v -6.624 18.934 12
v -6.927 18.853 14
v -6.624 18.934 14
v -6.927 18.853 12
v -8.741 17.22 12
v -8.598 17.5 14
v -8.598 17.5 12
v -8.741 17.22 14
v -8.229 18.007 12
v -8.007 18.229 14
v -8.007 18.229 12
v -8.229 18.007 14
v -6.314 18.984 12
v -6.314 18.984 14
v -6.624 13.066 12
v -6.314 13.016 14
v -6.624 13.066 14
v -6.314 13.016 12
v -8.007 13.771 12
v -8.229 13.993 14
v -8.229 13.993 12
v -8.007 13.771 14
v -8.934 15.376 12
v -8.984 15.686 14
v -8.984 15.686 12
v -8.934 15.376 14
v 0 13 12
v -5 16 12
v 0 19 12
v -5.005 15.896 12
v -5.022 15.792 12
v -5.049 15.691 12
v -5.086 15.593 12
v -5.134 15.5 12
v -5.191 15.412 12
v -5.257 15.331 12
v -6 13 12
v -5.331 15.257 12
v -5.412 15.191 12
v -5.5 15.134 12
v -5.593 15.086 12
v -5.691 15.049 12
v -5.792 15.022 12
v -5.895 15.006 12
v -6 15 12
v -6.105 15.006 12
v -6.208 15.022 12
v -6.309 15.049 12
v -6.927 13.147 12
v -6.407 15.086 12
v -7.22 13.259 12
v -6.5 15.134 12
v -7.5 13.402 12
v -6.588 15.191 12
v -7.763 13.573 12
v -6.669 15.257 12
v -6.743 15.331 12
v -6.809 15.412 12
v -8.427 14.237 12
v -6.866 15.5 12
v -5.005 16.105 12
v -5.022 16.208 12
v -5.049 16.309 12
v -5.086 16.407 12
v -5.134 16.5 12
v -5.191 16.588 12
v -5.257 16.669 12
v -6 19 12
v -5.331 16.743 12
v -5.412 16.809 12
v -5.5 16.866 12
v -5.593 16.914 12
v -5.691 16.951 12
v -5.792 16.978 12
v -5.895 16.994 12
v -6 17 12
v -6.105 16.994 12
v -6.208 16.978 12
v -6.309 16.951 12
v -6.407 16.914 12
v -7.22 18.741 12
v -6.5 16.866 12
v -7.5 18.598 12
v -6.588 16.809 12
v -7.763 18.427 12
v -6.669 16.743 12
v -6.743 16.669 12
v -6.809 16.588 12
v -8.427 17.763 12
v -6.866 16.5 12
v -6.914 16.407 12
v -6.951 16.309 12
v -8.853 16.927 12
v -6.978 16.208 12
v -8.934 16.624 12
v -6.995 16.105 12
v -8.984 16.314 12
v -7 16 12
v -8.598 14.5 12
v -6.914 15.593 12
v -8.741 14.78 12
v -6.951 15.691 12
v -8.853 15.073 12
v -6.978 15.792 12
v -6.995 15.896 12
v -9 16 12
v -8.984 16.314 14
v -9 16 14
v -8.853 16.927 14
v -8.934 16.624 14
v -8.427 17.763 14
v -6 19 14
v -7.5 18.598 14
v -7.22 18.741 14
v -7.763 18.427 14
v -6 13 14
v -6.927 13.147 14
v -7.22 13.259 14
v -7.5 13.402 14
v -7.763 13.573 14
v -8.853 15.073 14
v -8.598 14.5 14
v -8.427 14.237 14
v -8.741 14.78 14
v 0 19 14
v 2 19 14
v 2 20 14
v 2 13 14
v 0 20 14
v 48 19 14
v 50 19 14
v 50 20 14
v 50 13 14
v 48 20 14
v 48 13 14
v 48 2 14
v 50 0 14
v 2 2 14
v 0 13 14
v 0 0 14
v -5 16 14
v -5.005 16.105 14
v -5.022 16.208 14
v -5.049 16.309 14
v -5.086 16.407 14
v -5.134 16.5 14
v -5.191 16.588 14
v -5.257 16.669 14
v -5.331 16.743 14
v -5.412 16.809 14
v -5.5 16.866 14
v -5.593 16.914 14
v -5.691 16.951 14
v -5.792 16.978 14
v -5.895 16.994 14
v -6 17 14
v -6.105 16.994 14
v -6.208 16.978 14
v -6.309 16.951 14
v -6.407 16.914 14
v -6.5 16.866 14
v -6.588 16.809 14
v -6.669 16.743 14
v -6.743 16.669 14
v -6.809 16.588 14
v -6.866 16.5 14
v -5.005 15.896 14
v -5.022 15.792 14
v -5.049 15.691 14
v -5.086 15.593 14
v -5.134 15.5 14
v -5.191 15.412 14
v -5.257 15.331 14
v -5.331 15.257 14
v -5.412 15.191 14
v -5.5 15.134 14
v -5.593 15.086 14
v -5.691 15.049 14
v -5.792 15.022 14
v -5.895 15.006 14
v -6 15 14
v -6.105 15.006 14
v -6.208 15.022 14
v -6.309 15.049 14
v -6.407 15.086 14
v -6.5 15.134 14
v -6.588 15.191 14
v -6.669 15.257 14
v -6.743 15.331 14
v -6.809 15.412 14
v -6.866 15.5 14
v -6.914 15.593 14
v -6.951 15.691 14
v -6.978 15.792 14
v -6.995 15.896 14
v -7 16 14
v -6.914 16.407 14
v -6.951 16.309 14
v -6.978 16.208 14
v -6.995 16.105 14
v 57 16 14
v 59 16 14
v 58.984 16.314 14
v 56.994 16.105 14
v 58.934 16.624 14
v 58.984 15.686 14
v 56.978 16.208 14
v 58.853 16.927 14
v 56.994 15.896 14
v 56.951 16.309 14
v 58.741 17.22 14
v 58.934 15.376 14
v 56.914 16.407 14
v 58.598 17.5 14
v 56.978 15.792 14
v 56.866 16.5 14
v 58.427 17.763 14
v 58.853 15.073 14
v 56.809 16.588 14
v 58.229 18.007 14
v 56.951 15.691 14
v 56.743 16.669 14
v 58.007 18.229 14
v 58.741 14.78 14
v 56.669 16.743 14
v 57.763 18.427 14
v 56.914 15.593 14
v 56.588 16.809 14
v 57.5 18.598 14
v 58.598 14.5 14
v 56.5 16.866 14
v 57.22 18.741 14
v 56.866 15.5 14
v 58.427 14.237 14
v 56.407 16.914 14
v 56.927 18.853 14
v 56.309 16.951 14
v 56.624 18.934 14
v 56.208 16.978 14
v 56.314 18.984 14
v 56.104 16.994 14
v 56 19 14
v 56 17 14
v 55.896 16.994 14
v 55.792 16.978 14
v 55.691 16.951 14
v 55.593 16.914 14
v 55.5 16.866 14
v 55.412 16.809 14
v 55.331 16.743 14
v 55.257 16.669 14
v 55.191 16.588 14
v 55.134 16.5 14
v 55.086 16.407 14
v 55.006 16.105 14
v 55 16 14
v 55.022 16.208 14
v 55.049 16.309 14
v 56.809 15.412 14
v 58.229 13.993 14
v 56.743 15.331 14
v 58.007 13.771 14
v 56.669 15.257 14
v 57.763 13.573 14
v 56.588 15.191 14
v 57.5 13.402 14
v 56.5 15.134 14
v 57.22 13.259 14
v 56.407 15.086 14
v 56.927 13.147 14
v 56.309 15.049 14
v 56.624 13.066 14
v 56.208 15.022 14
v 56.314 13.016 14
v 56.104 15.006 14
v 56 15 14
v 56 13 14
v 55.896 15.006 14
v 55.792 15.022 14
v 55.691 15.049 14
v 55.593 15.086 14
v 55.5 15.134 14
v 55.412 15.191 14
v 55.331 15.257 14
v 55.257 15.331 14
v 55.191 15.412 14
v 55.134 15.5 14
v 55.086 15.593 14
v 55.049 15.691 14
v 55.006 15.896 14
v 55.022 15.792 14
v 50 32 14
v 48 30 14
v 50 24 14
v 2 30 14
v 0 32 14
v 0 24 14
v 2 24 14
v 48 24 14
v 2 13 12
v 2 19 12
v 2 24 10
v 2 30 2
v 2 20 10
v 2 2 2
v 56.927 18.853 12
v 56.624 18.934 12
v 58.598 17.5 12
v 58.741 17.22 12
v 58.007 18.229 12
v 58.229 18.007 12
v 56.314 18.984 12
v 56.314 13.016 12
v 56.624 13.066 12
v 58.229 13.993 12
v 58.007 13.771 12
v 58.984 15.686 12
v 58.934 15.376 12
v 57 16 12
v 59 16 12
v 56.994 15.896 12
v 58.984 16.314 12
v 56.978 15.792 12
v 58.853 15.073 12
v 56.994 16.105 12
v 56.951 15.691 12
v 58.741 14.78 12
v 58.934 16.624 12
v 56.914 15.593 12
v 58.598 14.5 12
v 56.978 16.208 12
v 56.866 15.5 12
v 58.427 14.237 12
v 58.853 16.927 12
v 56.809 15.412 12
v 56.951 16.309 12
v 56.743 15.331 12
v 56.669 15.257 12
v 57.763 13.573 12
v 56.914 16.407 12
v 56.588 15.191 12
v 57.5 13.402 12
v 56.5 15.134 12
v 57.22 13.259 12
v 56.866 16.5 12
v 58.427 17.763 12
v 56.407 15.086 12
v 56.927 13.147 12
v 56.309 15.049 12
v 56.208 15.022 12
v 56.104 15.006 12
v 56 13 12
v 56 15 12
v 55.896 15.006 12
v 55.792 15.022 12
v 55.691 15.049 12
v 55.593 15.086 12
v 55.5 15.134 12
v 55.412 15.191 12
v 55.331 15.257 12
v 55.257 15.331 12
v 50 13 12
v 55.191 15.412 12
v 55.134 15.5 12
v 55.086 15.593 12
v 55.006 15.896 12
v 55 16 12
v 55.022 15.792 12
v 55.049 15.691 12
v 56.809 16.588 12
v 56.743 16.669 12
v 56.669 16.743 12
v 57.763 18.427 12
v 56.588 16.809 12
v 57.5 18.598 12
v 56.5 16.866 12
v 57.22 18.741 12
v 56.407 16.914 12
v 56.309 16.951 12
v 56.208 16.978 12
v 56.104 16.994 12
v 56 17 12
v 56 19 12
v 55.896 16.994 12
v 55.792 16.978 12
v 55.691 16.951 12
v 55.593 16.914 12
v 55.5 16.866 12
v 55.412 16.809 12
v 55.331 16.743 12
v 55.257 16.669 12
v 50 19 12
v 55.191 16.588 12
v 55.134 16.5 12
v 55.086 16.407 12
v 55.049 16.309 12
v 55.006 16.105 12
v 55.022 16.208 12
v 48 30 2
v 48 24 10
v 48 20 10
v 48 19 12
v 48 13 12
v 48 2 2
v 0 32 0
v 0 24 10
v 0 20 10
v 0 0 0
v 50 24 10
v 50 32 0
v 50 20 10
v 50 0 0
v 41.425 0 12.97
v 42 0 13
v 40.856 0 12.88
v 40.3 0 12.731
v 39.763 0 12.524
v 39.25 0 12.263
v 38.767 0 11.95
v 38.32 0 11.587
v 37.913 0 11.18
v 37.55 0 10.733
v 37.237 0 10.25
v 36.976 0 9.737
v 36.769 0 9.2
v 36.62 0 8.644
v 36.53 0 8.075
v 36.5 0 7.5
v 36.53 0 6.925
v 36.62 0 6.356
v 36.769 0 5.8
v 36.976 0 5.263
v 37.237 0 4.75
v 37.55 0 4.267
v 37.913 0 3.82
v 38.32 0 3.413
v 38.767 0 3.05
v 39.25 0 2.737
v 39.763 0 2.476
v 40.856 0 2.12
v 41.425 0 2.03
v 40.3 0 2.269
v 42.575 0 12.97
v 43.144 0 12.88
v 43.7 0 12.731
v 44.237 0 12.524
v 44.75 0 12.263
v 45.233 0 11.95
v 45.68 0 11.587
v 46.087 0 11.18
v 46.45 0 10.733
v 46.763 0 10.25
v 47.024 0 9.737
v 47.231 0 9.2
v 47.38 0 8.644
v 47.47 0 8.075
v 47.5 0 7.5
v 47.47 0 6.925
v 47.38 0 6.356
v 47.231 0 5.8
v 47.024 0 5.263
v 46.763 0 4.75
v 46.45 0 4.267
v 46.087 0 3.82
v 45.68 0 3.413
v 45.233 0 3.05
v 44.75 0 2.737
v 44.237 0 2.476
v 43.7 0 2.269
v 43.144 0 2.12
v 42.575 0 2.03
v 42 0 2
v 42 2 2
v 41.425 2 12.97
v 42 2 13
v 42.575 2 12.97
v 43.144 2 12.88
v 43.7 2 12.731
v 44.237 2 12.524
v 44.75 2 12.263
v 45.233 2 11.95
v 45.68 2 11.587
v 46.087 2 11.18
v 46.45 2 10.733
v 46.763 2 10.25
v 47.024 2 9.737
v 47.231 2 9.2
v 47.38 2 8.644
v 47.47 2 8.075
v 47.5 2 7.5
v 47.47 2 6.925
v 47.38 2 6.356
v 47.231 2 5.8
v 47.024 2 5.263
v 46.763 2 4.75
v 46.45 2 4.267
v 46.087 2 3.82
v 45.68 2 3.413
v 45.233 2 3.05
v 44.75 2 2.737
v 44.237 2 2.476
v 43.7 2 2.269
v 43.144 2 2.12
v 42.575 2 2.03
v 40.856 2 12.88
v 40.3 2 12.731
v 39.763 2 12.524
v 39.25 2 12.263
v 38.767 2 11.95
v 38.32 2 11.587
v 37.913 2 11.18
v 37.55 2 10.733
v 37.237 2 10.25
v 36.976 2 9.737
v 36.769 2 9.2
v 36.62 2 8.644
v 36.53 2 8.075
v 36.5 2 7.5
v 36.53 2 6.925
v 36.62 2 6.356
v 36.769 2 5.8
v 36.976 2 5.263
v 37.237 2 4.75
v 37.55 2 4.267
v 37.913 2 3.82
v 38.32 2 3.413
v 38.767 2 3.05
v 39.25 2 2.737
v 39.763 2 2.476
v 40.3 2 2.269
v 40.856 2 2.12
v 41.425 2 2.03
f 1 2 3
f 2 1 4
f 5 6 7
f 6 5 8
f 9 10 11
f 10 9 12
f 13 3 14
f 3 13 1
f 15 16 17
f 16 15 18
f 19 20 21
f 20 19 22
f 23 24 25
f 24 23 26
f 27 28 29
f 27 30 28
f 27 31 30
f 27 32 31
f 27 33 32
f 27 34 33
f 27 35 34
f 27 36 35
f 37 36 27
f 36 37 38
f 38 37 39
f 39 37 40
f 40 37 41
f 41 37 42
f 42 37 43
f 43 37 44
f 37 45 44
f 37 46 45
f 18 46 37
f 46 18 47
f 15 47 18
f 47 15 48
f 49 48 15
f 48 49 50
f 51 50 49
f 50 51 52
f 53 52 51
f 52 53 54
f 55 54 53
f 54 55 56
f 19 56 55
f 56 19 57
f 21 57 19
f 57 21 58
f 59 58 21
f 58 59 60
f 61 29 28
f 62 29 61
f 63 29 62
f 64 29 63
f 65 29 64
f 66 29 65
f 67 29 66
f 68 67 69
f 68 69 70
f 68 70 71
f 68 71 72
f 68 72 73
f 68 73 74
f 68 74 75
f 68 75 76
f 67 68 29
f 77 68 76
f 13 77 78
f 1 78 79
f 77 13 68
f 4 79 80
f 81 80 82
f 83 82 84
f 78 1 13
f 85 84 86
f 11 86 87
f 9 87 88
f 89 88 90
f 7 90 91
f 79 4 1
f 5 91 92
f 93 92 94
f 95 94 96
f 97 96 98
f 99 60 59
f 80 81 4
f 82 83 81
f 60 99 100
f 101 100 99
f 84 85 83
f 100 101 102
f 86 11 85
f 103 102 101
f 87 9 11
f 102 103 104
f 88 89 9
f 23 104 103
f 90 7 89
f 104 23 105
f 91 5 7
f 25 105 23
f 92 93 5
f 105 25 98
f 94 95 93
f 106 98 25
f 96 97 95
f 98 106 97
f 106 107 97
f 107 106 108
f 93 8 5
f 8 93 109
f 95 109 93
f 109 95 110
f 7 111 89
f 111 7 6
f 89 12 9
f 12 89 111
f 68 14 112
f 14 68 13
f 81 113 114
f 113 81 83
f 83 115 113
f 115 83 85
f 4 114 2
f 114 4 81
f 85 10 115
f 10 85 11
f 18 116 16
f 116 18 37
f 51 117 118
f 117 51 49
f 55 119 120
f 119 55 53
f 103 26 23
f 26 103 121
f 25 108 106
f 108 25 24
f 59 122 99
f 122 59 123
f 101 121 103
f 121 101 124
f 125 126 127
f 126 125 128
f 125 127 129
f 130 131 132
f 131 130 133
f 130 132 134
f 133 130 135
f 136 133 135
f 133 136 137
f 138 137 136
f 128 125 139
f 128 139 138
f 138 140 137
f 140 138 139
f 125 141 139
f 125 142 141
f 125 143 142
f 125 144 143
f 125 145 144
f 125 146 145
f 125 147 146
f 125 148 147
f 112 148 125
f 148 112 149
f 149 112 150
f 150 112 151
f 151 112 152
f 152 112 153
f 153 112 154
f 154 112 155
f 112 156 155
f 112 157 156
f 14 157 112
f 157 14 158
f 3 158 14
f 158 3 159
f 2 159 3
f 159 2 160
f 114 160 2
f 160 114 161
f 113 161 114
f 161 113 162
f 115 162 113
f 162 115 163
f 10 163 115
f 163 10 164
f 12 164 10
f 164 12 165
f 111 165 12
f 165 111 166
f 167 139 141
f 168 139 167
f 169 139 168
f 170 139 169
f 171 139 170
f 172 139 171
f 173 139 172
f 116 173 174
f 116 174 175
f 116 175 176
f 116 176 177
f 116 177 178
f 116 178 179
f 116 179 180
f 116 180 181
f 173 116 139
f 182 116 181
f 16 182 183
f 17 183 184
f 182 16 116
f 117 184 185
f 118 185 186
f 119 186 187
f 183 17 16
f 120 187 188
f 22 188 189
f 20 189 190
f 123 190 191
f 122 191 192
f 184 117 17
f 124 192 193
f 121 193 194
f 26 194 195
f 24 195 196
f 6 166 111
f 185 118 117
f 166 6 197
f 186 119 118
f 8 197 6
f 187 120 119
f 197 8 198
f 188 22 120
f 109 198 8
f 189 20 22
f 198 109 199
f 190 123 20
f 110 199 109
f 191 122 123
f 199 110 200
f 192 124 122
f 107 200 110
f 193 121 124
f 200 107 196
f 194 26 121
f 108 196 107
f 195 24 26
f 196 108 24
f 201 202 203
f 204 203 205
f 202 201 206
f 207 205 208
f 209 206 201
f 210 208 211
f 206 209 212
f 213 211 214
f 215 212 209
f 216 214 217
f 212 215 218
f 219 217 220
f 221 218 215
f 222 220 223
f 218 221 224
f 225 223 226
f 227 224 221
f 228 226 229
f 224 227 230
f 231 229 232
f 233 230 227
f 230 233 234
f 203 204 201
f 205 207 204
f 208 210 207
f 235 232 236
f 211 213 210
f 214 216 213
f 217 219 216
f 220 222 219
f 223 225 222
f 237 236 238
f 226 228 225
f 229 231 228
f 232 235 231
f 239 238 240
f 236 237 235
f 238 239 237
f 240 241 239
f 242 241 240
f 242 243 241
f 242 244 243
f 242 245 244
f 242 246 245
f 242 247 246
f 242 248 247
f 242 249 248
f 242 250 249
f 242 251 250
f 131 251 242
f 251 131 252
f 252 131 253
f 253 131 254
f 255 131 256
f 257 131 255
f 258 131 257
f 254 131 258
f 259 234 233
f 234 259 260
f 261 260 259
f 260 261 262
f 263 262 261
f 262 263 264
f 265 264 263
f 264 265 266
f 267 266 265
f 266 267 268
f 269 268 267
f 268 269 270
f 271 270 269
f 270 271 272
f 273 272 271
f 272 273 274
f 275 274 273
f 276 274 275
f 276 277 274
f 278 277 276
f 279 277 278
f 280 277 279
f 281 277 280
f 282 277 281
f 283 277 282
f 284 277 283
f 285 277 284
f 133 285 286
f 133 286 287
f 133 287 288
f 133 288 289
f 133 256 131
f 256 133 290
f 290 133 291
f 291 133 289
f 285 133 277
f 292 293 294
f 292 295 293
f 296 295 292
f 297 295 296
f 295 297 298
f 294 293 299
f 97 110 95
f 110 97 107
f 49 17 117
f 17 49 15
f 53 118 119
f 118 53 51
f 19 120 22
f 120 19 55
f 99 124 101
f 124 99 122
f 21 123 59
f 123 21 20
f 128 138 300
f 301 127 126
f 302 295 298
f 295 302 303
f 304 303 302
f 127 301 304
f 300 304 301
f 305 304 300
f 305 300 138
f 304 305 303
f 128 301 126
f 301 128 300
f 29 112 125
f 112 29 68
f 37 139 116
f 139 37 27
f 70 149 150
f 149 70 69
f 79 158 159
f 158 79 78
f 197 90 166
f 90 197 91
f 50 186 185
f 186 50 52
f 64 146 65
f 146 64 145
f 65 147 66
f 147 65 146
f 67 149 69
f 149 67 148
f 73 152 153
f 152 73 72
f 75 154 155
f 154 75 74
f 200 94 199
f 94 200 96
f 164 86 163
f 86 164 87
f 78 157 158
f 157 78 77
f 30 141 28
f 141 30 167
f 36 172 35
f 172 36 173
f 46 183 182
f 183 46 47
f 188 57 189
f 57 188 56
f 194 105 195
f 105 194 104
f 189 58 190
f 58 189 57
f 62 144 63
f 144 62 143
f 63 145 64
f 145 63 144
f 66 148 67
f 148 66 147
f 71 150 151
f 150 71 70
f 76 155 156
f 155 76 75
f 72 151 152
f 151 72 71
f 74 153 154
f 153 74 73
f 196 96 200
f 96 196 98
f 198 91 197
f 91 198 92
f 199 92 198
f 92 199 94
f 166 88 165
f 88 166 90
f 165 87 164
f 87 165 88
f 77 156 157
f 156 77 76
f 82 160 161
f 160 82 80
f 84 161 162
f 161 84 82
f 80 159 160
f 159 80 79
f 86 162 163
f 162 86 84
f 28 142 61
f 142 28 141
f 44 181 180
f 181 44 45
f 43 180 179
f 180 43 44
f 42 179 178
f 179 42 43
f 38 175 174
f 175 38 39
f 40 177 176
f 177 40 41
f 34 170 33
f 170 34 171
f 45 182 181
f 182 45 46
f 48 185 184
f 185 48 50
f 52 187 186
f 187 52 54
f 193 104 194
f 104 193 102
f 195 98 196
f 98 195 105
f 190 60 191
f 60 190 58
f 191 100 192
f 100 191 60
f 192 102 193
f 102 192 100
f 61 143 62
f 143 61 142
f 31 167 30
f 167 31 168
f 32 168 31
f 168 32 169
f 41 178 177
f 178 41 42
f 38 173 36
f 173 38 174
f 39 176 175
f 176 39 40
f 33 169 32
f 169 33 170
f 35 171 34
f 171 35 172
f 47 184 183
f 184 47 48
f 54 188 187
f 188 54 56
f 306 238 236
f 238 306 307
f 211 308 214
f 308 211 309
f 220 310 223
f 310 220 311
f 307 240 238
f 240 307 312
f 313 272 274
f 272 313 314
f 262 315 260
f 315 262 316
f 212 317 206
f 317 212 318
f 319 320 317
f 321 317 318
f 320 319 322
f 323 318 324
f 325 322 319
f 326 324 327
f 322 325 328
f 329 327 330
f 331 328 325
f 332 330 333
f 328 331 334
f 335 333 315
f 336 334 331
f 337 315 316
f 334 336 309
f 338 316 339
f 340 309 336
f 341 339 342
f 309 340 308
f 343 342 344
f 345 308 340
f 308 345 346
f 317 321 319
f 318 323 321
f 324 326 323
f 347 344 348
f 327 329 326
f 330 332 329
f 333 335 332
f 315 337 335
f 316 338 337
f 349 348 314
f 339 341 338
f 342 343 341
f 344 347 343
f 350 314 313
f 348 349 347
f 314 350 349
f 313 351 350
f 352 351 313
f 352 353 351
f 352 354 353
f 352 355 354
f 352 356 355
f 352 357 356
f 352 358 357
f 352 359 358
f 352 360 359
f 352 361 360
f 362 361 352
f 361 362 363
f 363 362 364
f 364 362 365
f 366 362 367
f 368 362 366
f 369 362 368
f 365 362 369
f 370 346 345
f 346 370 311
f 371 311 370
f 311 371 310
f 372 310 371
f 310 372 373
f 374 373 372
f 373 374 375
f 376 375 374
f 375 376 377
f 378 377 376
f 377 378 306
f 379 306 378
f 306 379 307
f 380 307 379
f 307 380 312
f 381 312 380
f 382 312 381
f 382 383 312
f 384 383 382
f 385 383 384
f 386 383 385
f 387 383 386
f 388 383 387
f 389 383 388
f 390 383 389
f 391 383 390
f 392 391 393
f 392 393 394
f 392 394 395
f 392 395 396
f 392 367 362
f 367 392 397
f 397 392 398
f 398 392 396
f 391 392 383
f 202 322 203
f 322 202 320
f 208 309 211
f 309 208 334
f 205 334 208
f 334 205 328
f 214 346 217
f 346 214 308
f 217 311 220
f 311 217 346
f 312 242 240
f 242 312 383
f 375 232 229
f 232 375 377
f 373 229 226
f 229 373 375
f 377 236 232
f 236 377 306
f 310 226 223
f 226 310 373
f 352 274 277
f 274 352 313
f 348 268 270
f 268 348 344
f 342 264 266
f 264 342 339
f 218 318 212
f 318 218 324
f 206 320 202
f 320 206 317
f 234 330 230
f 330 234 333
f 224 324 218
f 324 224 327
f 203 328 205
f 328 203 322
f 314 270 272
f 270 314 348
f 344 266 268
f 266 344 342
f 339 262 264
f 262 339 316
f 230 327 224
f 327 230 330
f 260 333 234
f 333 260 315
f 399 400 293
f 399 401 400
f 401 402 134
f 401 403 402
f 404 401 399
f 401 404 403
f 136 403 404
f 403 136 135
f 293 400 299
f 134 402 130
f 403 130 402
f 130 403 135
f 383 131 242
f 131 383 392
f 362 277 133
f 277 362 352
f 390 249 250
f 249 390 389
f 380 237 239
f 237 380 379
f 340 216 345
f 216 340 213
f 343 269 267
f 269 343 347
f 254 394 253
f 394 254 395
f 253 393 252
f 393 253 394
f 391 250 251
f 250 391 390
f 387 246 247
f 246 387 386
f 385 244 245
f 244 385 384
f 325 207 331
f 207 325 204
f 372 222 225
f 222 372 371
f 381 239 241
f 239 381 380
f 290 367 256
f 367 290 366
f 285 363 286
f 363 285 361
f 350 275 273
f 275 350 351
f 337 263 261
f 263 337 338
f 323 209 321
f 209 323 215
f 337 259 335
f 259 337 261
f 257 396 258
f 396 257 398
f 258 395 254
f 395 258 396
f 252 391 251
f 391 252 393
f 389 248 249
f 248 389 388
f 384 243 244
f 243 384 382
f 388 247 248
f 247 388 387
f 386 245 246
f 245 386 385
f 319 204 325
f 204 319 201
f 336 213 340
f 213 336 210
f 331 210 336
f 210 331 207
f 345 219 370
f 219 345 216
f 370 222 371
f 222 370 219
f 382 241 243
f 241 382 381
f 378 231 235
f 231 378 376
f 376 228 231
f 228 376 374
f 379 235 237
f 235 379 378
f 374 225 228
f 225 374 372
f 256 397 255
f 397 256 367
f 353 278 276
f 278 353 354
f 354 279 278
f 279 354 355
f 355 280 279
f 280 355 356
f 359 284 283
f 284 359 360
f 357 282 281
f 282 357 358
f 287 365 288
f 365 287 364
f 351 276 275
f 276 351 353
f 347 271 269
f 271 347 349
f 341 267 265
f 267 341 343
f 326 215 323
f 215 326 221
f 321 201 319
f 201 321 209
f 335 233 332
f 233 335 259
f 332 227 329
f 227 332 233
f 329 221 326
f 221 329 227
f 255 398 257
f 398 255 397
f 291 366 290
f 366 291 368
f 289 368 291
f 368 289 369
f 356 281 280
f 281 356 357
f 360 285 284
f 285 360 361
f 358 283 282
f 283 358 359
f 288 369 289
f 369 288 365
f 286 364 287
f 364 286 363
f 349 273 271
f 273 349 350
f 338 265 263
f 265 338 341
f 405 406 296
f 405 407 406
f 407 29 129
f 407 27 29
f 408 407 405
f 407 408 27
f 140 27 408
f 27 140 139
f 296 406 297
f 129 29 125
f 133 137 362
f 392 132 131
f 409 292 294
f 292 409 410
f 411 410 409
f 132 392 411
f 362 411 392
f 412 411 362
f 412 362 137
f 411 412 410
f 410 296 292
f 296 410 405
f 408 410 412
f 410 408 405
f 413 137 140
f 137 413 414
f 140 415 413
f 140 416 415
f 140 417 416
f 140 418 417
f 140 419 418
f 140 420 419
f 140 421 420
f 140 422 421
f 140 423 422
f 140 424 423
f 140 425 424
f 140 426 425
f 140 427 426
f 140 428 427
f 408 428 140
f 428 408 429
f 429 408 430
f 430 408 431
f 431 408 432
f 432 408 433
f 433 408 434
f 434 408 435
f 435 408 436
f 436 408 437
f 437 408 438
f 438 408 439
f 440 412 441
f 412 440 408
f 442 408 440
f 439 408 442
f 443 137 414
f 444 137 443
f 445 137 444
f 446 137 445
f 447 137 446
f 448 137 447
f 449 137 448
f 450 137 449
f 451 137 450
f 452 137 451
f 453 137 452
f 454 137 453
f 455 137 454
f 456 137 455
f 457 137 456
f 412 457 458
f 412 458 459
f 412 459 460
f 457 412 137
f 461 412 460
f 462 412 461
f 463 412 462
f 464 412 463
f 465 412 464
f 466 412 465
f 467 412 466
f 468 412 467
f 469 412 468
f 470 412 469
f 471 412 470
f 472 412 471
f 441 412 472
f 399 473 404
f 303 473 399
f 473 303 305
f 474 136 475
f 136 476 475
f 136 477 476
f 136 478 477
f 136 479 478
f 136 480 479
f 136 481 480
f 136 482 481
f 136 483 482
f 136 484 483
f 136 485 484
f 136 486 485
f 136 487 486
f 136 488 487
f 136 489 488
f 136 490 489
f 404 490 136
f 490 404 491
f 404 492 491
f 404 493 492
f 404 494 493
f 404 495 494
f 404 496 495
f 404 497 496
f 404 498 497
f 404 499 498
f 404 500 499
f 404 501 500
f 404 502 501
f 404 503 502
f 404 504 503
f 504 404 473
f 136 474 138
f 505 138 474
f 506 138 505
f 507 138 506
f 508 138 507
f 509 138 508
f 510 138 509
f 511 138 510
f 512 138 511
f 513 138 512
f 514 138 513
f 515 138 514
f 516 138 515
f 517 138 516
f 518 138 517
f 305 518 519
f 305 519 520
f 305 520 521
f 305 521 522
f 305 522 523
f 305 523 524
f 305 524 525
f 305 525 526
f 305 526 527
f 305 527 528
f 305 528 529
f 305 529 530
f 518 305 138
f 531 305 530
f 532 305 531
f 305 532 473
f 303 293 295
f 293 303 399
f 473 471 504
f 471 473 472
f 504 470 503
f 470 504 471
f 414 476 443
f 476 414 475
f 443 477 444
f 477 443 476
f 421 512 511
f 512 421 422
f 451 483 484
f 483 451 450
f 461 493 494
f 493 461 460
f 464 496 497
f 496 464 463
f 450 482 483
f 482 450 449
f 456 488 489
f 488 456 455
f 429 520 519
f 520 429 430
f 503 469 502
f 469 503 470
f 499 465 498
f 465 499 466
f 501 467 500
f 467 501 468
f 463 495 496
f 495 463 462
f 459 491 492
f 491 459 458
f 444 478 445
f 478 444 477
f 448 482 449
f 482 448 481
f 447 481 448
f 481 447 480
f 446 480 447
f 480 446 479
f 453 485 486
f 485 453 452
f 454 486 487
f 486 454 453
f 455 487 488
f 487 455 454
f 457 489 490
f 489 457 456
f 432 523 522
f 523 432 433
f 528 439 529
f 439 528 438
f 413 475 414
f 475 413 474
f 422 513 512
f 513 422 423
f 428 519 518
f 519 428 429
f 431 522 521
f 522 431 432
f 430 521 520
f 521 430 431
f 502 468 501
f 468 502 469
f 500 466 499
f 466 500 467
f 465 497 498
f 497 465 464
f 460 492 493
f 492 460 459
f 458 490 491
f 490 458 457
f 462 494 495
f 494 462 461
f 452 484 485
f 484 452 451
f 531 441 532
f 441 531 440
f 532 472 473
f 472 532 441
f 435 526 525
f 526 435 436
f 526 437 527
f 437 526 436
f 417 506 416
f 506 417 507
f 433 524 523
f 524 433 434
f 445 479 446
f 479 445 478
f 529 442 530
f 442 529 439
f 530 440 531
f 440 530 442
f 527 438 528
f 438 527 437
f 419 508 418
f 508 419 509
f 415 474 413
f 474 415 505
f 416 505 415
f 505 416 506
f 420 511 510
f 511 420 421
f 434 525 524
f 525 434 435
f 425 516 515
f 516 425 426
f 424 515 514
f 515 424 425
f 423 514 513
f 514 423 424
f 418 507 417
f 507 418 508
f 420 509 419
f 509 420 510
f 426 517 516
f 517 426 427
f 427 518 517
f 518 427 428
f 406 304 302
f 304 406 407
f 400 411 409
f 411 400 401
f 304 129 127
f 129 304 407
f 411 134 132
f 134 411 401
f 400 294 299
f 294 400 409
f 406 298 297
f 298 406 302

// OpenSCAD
$fn=60;


module case(){
  difference(){
    cube([50,32,14]);
    translate([2,2,2]) cube([46,28,12]);   
    translate([42,3,7.5]) rotate([90,90,0]) #cylinder(d=11, h=4);
    translate([0,20,10]) #cube([50,4,4]);
  }
  translate([-6,16,12]) ear();
  translate([56,16,12]) mirror() ear();
}

module ear(){
  difference(){
    union(){
      translate([]) cylinder(d=6, h=2);
      translate([0,-3,0]) cube([8,6,2]);
    }
    translate([]) cylinder(d=2, h=2);
  }
}

case();
